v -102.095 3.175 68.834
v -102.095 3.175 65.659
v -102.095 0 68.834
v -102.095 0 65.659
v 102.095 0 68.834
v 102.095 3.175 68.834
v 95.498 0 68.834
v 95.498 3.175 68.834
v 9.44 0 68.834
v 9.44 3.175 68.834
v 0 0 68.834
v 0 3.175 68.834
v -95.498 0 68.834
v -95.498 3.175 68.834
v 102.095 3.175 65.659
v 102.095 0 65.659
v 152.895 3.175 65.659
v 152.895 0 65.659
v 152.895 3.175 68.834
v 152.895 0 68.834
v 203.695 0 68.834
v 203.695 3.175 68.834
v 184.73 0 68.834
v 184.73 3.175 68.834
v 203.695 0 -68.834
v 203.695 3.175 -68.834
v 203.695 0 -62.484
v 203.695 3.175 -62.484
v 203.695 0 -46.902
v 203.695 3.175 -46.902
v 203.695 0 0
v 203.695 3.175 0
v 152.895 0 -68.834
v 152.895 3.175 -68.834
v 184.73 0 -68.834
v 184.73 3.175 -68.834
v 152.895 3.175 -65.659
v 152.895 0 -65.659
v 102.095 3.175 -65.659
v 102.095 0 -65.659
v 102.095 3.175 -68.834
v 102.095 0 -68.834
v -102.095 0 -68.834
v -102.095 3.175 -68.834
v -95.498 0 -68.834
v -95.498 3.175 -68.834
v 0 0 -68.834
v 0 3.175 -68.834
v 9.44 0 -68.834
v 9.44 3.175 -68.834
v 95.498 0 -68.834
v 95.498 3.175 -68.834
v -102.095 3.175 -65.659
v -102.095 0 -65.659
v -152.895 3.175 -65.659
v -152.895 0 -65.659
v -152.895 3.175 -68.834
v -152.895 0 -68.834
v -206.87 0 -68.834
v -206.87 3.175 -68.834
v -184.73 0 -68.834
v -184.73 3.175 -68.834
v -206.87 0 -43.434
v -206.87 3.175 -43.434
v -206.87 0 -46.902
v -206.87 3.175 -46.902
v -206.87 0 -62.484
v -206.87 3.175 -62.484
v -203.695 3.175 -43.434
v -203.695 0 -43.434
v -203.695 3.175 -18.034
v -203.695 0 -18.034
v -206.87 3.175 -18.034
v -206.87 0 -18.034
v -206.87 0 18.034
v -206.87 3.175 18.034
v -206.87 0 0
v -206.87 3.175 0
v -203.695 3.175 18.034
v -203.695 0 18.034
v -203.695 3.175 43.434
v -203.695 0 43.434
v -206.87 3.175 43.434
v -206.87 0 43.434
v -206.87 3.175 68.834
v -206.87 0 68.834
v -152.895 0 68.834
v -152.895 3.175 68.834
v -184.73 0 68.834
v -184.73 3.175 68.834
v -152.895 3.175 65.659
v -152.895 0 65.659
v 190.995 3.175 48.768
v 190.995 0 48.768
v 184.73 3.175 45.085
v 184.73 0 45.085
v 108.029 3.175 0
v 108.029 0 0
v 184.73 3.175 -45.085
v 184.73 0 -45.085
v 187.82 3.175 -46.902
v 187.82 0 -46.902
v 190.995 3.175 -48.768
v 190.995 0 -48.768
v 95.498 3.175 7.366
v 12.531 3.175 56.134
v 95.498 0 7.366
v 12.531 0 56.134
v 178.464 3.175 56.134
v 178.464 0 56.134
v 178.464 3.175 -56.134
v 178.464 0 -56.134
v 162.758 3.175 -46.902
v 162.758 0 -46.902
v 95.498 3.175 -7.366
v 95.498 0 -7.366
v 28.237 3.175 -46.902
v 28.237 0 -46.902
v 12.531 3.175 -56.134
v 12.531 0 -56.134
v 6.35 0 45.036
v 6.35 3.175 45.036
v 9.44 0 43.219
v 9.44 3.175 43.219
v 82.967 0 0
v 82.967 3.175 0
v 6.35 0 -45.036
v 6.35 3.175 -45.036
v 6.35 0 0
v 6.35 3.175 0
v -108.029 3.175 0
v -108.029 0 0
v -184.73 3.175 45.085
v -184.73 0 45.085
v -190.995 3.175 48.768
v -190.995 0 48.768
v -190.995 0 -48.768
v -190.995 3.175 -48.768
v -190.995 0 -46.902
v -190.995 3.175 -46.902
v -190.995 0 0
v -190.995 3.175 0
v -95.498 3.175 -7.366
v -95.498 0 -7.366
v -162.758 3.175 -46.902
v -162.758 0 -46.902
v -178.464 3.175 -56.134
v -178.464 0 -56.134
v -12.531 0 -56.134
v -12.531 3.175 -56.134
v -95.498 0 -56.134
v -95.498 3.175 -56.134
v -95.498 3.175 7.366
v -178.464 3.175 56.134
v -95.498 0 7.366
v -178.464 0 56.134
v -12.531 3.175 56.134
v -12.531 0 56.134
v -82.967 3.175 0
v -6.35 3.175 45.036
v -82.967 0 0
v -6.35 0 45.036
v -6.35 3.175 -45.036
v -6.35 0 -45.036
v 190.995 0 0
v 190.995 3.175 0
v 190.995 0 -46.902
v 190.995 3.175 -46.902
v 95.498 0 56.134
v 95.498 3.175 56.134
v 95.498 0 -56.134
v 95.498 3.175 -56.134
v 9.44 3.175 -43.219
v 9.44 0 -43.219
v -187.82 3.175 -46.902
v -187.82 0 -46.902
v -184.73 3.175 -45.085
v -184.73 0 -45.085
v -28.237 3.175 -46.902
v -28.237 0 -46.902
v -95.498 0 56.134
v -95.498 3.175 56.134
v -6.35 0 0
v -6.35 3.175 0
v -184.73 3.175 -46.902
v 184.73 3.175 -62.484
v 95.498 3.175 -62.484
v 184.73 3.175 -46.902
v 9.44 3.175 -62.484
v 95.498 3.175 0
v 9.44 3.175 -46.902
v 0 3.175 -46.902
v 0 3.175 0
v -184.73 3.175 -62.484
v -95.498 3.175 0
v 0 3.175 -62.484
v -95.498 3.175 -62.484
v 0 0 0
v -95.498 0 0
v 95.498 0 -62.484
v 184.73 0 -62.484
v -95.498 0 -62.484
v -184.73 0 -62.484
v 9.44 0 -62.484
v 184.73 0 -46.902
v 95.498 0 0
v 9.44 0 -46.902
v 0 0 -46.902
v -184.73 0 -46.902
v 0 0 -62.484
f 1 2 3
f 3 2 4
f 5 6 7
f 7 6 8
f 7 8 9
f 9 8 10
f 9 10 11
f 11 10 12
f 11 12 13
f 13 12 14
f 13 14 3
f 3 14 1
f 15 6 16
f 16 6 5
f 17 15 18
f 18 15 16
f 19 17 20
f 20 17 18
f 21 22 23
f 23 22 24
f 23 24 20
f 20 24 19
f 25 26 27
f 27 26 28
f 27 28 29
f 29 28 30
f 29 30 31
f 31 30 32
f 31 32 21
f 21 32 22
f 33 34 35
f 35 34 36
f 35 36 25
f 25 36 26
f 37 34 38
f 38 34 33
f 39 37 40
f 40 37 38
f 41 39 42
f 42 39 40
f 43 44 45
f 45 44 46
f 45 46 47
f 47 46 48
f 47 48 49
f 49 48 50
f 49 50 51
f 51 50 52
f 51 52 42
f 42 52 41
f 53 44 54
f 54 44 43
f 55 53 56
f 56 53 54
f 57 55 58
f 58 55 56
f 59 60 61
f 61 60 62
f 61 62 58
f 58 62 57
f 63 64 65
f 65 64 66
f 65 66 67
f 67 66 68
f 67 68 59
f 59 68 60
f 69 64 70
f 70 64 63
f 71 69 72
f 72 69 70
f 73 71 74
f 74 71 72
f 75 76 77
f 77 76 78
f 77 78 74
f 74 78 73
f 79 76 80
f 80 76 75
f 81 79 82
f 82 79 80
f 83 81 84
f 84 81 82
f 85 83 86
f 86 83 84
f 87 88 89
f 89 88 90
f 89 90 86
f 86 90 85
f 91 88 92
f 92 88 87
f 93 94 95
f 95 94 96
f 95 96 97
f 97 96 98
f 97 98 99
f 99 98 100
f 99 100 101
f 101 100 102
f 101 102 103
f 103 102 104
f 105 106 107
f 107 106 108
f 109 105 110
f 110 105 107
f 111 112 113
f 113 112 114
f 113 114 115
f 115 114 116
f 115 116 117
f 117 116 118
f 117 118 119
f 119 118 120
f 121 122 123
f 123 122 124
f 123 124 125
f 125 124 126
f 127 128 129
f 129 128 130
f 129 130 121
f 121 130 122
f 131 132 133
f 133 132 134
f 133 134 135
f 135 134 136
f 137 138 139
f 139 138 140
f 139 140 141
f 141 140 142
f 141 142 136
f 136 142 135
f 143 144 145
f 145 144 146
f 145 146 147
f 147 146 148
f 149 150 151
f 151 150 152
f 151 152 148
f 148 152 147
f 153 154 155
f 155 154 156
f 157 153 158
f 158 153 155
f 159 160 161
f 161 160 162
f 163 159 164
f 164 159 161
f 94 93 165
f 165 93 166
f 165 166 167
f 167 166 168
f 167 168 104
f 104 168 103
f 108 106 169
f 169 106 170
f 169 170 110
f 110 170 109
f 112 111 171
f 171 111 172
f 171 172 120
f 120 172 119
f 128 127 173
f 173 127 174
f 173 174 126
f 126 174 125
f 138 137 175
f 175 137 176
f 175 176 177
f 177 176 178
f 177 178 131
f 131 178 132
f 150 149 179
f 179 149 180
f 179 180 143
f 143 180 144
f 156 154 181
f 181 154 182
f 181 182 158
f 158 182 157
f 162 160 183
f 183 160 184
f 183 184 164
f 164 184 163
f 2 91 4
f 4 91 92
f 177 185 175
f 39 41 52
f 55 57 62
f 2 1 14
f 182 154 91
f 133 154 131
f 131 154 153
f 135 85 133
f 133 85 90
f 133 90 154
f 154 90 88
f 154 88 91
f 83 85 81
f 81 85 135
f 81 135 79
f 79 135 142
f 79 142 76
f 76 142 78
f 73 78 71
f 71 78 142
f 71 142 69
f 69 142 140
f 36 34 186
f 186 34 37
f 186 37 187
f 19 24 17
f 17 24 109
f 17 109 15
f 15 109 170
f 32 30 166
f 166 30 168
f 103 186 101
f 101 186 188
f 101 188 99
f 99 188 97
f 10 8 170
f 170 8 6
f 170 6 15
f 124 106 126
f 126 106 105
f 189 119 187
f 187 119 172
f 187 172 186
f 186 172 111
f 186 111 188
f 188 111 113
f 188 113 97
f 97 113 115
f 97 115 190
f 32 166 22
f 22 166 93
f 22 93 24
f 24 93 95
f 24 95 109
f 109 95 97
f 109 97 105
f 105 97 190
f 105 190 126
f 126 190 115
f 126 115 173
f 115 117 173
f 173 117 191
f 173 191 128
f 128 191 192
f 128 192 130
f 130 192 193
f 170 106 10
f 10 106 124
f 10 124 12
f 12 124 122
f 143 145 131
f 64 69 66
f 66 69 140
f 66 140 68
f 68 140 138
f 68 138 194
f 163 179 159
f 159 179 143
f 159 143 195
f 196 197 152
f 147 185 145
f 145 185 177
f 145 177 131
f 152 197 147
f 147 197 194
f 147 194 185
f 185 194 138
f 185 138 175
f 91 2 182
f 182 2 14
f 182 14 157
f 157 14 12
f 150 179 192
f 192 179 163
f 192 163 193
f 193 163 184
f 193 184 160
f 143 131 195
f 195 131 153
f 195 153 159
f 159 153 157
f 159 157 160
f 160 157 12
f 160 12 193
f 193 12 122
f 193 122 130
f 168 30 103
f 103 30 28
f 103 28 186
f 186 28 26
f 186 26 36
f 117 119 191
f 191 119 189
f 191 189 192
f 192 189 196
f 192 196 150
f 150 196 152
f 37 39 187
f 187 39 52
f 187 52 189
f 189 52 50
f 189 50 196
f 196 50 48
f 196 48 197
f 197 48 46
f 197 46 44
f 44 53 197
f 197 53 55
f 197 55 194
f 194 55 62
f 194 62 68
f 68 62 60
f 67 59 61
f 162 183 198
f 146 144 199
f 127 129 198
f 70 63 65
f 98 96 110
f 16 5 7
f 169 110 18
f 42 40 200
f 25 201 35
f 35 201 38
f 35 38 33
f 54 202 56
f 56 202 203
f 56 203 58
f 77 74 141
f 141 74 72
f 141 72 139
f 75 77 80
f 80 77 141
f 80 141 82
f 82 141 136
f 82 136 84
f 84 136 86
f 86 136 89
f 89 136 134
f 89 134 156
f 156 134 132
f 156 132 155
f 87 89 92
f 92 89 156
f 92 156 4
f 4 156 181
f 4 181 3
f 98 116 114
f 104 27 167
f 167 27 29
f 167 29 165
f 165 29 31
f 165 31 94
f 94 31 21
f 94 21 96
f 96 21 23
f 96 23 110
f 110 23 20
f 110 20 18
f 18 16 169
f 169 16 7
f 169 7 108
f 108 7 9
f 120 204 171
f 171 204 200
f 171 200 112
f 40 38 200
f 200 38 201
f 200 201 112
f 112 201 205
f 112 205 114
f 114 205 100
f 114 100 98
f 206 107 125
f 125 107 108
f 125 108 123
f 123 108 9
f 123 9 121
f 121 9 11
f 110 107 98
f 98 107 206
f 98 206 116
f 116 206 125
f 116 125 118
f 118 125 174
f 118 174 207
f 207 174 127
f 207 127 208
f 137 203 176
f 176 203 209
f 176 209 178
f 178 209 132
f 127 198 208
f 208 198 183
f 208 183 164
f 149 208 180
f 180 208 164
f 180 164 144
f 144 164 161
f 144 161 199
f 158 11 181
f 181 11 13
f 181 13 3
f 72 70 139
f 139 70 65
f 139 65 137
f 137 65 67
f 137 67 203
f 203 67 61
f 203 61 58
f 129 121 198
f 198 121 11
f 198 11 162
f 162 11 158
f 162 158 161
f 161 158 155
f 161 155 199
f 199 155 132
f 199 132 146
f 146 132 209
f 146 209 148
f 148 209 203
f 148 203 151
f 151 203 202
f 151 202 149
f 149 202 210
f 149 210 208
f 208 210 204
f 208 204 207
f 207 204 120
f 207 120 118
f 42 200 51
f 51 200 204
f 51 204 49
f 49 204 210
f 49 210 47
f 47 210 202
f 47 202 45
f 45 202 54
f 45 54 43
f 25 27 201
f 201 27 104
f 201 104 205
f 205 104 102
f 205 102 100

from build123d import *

# Parameters (mm, degrees)
BOSS_EXTRUDE1_DEPTH = 3.175


with BuildPart() as part:
    # Sketch1 → Boss-Extrude1 (new body)
    with BuildSketch(Plane(origin=(0, 0, 0), x_dir=(1, 0, 0), z_dir=(0, 1, 0))):
        Polygon((-203.6953, 68.834), (-152.8953, 68.834), (-152.8953, 65.659), (-102.0953, 65.659), (-102.0953, 68.834), (102.0953, 68.834), (102.0953, 65.659), (152.8953, 65.659), (152.8953, 68.834), (203.6953, 68.834), (203.6953, -68.834), (152.8953, -68.834), (152.8953, -65.659), (102.0953, -65.659), (102.0953, -68.834), (-102.0953, -68.834), (-102.0953, -65.659), (-152.8953, -65.659), (-152.8953, -68.834), (-203.6953, -68.834), (-206.8703, -68.834), (-206.8703, -43.434), (-203.6953, -43.434), (-203.6953, -18.034), (-206.8703, -18.034), (-206.8703, 18.034), (-203.6953, 18.034), (-203.6953, 43.434), (-206.8703, 43.434), (-206.8703, 68.834), align=None)
        Polygon((-178.464331058, 56.134), (-12.530968942, 56.134), (-95.49765, 7.365766703), align=None, mode=Mode.SUBTRACT)
        Polygon((-190.9953, 48.768233297), (-190.9953, -48.768233297), (-108.028618942, 0), align=None, mode=Mode.SUBTRACT)
        Polygon((-178.464331058, -56.134), (-12.530968942, -56.134), (-95.49765, -7.365766703), align=None, mode=Mode.SUBTRACT)
        Polygon((190.9953, 48.768233297), (190.9953, -48.768233297), (108.028618942, 0), align=None, mode=Mode.SUBTRACT)
        Polygon((6.35, 45.035671291), (6.35, -45.035671291), (82.966681058, 0), align=None, mode=Mode.SUBTRACT)
        Polygon((12.530968942, 56.134), (95.49765, 7.365766703), (178.464331058, 56.134), align=None, mode=Mode.SUBTRACT)
        Polygon((-6.35, 45.035671291), (-6.35, -45.035671291), (-82.966681058, 0), align=None, mode=Mode.SUBTRACT)
        Polygon((12.530968942, -56.134), (178.464331058, -56.134), (95.49765, -7.365766703), align=None, mode=Mode.SUBTRACT)
    extrude(amount=BOSS_EXTRUDE1_DEPTH)


solid = part.part
